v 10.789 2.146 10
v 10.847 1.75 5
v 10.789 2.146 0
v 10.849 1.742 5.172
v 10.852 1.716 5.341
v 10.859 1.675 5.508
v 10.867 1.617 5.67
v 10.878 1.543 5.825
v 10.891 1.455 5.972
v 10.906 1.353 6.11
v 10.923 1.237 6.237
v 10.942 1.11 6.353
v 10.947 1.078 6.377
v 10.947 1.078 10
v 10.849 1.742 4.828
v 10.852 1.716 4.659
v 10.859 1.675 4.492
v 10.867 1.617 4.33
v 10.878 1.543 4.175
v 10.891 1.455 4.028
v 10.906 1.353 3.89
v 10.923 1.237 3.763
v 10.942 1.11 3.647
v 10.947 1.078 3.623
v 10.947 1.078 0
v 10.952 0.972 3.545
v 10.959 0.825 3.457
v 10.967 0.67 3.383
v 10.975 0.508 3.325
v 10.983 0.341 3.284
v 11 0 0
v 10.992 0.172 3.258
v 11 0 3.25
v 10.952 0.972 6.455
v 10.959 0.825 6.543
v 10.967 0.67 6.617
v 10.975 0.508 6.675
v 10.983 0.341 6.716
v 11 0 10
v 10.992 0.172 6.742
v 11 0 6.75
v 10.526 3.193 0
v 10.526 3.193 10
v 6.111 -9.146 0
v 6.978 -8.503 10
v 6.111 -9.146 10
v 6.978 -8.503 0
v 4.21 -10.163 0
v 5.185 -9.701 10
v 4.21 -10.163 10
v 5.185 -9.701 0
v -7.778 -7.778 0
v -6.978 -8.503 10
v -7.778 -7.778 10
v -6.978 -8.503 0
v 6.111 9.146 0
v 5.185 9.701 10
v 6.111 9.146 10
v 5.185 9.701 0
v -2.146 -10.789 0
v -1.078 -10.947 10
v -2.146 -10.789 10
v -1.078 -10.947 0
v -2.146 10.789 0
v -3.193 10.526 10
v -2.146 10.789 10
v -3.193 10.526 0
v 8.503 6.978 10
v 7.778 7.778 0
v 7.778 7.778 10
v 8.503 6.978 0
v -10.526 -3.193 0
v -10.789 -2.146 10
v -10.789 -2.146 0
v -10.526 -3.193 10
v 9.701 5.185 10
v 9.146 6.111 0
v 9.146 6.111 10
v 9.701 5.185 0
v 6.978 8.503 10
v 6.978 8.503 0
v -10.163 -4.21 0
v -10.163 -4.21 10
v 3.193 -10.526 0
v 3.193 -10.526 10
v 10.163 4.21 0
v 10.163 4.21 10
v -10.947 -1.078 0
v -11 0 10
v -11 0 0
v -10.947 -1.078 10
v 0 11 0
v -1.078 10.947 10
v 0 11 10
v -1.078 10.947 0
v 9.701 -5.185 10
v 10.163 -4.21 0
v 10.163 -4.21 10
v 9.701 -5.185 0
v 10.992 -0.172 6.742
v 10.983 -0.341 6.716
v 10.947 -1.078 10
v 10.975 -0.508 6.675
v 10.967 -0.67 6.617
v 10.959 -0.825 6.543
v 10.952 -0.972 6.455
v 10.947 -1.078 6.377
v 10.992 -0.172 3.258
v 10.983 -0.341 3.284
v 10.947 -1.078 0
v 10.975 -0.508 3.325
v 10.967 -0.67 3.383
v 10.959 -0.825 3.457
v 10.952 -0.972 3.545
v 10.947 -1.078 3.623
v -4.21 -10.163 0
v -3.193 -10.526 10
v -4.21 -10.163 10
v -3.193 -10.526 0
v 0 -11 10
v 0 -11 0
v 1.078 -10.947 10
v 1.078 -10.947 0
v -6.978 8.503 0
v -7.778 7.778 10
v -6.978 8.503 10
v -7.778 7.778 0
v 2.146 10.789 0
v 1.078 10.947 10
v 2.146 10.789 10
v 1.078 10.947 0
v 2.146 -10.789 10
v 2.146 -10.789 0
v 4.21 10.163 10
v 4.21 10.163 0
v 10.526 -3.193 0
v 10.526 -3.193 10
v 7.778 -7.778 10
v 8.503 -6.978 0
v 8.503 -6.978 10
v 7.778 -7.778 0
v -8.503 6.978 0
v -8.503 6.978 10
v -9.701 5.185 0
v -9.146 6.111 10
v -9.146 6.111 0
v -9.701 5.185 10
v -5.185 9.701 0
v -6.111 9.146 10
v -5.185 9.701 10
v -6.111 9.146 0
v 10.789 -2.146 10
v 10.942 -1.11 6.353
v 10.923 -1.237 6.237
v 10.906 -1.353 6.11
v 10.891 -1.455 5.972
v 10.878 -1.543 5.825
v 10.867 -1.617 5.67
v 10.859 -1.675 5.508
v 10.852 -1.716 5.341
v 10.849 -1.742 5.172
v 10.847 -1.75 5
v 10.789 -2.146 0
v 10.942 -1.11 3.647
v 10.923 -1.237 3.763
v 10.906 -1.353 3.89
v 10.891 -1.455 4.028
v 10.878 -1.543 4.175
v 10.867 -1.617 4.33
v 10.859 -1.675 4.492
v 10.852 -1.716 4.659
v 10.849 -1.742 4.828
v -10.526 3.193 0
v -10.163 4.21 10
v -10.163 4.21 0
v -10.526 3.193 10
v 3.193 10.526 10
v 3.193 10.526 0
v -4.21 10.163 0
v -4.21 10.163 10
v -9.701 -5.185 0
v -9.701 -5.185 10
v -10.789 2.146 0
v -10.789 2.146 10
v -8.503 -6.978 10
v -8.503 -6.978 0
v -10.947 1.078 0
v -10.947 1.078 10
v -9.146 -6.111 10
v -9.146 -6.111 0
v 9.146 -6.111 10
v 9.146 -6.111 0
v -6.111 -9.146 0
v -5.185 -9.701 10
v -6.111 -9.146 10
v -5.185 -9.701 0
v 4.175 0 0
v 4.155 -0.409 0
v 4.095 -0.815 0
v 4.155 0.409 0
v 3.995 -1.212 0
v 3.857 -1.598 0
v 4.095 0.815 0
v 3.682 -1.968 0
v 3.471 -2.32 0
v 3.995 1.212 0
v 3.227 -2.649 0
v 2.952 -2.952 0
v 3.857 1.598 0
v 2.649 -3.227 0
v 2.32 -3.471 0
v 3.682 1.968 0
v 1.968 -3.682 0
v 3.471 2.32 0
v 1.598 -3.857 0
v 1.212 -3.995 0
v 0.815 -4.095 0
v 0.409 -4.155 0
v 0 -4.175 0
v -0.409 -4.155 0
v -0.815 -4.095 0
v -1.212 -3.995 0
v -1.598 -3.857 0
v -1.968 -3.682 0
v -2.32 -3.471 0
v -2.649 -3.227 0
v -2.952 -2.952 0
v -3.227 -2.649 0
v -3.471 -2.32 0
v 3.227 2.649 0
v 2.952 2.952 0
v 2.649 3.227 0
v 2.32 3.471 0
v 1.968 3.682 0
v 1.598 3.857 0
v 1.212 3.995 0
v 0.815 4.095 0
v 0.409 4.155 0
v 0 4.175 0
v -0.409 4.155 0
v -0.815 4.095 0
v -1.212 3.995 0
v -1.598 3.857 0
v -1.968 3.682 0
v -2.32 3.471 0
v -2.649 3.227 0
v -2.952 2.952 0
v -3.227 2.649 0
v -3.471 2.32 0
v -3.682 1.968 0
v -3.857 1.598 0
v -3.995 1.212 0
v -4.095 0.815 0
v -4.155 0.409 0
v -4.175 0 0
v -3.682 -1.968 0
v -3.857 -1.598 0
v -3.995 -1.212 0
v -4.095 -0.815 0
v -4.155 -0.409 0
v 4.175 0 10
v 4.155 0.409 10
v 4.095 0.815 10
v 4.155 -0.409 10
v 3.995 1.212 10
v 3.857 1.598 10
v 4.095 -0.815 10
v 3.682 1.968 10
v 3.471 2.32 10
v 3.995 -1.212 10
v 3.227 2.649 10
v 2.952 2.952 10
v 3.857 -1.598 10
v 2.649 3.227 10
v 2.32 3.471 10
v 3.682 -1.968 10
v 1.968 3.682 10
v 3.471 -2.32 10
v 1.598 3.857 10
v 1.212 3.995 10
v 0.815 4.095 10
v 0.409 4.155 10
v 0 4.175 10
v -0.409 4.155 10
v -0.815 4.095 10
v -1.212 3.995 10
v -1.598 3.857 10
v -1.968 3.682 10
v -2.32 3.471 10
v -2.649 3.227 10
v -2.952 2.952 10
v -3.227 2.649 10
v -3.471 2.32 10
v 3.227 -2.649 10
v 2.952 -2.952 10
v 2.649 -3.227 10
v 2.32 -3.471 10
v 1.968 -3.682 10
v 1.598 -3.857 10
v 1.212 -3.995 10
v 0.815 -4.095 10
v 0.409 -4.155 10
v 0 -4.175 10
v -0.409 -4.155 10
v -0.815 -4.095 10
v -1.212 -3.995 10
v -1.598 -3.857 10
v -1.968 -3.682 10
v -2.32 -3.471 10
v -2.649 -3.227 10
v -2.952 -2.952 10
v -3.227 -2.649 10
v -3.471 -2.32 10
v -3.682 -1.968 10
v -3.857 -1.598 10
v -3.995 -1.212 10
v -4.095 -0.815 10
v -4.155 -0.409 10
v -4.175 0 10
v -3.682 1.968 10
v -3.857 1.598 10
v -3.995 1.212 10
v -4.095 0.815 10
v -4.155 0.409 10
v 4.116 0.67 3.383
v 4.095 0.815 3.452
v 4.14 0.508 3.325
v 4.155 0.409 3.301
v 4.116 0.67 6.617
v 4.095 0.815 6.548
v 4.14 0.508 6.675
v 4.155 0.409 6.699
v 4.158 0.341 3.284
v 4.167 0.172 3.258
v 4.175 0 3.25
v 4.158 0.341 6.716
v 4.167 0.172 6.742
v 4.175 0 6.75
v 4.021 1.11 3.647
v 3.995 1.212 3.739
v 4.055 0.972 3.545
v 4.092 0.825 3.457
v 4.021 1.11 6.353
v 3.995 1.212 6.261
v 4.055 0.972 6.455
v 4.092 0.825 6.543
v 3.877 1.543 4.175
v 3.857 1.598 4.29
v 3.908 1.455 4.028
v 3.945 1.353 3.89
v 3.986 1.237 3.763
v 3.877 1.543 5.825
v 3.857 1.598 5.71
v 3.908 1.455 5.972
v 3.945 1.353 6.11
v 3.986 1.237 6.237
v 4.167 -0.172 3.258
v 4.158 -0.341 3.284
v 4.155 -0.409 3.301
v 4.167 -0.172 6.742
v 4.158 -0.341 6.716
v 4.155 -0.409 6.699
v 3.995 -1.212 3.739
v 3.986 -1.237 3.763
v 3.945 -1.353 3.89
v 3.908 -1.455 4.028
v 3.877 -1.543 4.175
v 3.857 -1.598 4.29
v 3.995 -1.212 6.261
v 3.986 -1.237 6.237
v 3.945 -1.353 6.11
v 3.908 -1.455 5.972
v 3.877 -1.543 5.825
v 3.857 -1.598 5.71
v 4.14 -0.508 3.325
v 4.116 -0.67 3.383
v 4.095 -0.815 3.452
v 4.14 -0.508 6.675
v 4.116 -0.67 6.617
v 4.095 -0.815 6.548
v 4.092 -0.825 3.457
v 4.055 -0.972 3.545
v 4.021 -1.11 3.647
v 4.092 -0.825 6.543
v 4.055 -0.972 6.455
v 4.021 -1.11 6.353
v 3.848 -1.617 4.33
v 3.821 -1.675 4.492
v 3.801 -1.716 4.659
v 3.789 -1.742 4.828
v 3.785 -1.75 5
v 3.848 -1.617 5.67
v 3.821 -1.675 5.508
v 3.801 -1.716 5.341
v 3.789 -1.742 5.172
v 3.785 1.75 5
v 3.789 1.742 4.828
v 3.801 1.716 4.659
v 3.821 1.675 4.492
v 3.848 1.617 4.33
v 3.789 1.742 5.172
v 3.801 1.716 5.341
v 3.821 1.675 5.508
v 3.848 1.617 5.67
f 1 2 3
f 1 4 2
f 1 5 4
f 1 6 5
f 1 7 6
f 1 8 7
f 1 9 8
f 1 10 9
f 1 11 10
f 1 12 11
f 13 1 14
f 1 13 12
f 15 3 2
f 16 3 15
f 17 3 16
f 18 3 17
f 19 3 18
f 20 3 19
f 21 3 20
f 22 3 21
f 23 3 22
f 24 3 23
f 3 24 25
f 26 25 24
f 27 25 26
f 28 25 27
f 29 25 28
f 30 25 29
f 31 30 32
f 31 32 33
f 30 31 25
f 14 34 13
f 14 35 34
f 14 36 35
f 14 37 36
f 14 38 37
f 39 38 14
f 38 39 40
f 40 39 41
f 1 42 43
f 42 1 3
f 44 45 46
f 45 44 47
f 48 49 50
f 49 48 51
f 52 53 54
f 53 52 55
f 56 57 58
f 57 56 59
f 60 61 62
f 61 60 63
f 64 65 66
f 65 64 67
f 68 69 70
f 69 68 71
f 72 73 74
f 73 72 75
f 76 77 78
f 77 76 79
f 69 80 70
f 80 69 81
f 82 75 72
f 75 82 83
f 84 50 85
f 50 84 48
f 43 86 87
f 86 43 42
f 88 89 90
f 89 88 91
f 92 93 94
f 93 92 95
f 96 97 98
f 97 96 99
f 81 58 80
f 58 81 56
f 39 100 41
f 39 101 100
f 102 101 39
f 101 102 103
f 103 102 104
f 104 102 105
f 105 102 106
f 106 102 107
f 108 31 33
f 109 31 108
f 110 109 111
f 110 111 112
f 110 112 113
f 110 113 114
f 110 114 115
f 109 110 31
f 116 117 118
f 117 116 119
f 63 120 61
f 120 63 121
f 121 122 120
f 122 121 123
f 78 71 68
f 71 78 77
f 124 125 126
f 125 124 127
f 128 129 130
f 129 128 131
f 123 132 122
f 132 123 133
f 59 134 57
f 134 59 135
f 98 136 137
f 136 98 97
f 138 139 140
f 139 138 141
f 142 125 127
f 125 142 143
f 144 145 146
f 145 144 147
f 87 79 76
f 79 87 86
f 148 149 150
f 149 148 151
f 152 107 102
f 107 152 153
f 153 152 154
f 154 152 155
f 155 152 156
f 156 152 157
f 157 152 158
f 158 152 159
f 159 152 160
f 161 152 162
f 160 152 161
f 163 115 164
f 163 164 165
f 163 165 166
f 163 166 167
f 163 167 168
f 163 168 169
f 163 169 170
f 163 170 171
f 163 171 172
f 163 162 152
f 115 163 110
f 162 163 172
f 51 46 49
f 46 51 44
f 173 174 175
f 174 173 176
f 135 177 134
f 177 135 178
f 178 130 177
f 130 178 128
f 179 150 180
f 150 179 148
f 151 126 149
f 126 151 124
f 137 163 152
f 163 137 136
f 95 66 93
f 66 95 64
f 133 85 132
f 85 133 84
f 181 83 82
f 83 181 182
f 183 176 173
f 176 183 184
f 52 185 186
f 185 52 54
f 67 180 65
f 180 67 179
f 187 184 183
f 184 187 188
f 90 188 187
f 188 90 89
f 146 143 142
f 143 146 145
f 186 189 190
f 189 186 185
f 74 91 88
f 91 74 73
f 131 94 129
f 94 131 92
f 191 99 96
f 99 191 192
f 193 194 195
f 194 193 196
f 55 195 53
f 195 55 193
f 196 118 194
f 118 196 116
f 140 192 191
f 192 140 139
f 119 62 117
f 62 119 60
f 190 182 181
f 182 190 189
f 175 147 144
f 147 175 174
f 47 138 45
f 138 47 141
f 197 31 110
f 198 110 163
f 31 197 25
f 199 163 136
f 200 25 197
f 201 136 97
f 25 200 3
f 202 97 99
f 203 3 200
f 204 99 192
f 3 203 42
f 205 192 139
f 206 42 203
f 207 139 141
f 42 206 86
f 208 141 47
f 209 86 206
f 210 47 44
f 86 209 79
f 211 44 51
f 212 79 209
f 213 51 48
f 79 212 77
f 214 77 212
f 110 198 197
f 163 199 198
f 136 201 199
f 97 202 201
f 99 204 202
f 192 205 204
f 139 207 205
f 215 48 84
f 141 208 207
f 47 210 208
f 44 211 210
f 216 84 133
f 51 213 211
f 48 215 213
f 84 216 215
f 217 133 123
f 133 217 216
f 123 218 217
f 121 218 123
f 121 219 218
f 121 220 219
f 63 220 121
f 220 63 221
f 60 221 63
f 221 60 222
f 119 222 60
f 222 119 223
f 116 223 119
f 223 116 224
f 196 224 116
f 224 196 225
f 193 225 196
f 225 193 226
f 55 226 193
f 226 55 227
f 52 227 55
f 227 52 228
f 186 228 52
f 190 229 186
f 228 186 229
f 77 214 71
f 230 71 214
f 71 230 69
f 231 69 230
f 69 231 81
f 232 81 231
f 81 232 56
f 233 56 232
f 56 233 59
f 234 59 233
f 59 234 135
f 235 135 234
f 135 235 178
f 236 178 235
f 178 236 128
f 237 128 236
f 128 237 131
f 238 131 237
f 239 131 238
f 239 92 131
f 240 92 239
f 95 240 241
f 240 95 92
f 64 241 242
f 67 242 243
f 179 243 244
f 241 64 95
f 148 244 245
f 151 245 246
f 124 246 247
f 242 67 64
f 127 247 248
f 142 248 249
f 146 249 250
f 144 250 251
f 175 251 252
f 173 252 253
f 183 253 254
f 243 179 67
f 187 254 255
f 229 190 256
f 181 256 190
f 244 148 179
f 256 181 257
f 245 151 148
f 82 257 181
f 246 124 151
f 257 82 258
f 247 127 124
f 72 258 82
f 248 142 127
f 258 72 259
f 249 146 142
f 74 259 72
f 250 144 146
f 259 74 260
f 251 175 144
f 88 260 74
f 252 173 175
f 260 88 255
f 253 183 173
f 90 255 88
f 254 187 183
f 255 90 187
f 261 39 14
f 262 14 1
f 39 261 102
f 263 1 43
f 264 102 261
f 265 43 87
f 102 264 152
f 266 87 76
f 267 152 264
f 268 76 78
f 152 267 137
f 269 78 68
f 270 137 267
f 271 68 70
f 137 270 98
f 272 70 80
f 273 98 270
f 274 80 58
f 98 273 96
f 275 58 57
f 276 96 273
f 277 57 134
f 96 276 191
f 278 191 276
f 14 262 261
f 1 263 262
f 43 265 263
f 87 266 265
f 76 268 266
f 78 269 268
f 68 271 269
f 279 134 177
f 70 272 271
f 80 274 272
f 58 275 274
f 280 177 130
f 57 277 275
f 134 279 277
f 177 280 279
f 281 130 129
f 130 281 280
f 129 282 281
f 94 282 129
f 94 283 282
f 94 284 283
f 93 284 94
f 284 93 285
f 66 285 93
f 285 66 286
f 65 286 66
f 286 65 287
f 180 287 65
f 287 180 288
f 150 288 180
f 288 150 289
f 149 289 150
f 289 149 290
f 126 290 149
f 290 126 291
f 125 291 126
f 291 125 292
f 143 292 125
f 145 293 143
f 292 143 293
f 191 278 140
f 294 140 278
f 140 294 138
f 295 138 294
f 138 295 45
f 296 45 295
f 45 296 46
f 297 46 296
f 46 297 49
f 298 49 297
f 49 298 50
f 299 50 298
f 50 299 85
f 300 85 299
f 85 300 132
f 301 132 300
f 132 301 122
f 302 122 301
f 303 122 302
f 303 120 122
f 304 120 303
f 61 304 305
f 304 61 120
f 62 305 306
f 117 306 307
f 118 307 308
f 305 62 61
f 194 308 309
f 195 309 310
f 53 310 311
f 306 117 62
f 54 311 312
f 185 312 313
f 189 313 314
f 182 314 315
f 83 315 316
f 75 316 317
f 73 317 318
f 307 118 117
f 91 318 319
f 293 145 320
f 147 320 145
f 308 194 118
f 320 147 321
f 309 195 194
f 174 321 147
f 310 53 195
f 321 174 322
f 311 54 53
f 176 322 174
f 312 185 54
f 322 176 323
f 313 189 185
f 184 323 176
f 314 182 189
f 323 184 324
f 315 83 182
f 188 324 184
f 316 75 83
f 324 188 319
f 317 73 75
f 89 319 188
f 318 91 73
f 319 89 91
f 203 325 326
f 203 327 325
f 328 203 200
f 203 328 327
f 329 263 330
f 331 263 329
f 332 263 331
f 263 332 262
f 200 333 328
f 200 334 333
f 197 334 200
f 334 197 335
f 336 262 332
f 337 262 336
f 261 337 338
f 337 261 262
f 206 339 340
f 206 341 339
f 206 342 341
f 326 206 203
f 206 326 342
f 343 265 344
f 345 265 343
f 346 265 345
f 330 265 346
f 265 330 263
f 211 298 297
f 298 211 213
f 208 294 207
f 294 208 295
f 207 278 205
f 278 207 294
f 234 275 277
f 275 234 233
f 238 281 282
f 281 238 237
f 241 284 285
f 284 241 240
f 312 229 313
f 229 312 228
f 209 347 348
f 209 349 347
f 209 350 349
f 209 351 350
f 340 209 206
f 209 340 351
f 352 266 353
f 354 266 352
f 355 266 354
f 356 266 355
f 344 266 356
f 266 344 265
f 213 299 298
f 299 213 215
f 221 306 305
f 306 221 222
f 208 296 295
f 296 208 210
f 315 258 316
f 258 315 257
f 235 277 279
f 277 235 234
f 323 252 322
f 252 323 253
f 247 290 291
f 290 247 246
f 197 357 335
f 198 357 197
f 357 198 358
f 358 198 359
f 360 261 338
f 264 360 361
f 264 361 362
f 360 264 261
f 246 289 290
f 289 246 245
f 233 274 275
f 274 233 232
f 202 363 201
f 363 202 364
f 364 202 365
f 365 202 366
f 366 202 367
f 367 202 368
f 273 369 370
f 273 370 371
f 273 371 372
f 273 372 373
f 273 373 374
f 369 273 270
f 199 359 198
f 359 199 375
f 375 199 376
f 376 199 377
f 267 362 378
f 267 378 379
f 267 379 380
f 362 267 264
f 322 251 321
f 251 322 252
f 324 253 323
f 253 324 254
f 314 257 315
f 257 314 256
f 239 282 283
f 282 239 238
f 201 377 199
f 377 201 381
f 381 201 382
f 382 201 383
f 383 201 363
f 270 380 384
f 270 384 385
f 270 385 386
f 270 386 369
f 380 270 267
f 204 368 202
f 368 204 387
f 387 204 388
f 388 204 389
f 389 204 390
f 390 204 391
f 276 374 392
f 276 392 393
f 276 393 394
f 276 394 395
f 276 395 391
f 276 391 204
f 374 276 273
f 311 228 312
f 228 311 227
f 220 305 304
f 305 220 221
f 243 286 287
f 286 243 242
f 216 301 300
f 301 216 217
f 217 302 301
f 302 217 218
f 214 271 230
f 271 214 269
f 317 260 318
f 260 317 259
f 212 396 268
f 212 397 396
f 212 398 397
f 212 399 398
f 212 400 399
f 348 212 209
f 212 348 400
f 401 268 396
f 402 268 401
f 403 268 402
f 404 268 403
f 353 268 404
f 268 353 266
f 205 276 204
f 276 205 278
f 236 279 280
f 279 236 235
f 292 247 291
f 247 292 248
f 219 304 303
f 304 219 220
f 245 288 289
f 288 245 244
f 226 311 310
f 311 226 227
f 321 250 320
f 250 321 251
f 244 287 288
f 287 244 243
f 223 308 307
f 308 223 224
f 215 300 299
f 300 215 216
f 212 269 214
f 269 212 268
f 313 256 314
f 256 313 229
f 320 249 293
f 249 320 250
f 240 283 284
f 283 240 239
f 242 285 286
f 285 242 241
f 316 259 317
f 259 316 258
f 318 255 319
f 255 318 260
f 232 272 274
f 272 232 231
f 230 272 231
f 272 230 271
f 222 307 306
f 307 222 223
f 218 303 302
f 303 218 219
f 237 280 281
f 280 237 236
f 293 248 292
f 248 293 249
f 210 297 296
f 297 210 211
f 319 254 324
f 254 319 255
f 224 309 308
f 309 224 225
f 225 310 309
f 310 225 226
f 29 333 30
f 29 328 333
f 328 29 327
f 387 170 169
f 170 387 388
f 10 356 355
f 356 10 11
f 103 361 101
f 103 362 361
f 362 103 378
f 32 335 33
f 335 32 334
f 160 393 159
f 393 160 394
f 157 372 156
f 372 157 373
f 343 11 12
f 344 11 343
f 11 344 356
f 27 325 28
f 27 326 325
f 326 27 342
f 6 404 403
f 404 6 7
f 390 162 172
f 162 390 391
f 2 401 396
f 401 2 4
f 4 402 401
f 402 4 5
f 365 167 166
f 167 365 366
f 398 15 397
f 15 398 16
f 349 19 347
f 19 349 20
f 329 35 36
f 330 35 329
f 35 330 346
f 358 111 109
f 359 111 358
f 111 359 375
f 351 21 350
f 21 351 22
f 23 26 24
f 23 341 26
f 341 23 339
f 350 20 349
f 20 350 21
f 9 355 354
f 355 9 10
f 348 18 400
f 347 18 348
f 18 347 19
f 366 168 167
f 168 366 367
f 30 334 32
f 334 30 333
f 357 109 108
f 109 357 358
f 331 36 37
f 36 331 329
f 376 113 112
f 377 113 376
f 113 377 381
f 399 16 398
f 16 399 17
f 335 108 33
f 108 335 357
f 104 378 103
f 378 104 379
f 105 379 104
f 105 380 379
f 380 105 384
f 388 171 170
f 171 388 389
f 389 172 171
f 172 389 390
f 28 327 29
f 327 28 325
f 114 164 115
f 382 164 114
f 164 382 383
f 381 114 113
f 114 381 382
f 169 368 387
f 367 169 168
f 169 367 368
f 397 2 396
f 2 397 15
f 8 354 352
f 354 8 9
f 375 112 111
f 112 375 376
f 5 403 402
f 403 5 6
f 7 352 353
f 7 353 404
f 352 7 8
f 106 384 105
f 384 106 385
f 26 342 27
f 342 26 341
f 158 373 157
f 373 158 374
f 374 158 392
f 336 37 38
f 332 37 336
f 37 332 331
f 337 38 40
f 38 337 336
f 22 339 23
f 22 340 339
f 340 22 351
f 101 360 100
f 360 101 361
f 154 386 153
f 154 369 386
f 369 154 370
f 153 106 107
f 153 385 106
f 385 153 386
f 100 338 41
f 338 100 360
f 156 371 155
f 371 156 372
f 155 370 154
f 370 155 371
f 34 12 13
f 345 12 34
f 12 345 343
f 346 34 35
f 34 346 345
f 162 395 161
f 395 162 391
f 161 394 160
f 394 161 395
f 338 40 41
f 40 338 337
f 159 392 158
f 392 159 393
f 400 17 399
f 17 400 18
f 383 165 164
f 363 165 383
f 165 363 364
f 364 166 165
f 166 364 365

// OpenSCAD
// file: parameters.scad
// =============================================================================
// Gen-W Triple-rotor dual-stator sandwich — WOUND-AWARE (HARD GATE)
// RotorA | StatorA | RotorMid | StatorB | RotorB
// Magnets: outer 5+5 Ø20, mid 6 Ø20 (3/face); Ø5 Halbach 16+16+16
// =============================================================================

wire_awg            = 26;
wire_od             = 0.45;
turns               = 110;      // 18 pancakes × 110 t ≈ 198 m @ mean 0.10 m
fill                = 0.70;
layers_per_face     = 2;
wind_build_axial    = layers_per_face * wire_od * fill;   // 0.63
wind_build_radial   = 2.8 * wire_od * fill;               // 0.882

coil_id_r           = 23.0;
coil_od_r           = 56.0;
span_deg            = 34.0;     // 9 stations × 40°
former_web          = 2.0;
flange_t            = 0.75;
wall                = 1.2;
slot_w              = 2.4;
mount_hole          = 3.5;
tab_len             = 7.0;

former_bare_h       = former_web + 2 * flange_t;            // 3.5
coil_envelope_h     = former_bare_h + 2 * wind_build_axial; // 4.76

// Each gap: magnet ↔ wound ≥ 0.75
run_clear           = 0.75;
gap_spacer_h        = run_clear + wind_build_axial;         // 1.38
// Outer gap m2m (outer rotor ↔ mid rotor face through one stator):
m2m_outer           = coil_envelope_h + 2 * run_clear;      // 6.26
m2m_inner           = m2m_outer;                            // symmetric gaps

coil_stations       = 9;        // per stator; ×2 = 18
bay_r_in            = coil_id_r - 2.0 - wind_build_radial;
bay_r_out           = coil_od_r + 2.0 + wind_build_radial;
bay_span            = span_deg + 4.0;
bay_offset          = 2.0;
bay_depth           = former_bare_h + wind_build_axial;     // seat bare+back wind
stator_back_web     = 2.0;
stator_thick        = bay_depth + stator_back_web;          // ~6.13
stator_od           = 156.0;
shaft_clear_stator  = 40.0;
coil_mount_r        = 30.0;

// Outer rotors: 5×Ø20 + 16×Ø5 each; Mid: 3+3 Ø20 + 16 Ø5 (both faces)
large_pocket_d      = 20.3;
small_pocket_d      = 5.3;
pocket_h            = 5.2;
outer_large_n       = 5;
mid_large_n_face    = 3;        // 3 per face = 6 mid
R_large             = 52.0;
R_small_inner       = 40.0;
R_small_mid         = 52.0;
R_small_outer       = 64.0;
carrier_od          = 152.0;
outer_carrier_thick = 7.5;
mid_carrier_thick   = 12.0;     // dual face 5.2+1.6+5.2
hub_h               = 10.0;
hub_od              = 30.0;

shaft_bore          = 8.35;
bearing_d           = 21.85;
bearing_h           = 7.2;
m3_clear            = 3.5;
bolt_r_inner        = 36.0;
bolt_n_inner        = 6;
flange_bolt_r       = 72.0;
flange_bolt_n       = 6;
brace_r             = 68.0;
brace_d             = 4.3;
brace_n             = 4;

spacer_pad_od       = 14.0;
spacer_pad_id       = m3_clear;
endbell_od          = 156.0;
endbell_thick       = 8.0;
endbell_shaft_clear = 10.0;

$fn = 64;
// main file
// Gen-W shaft collar — print ×2–4
include <parameters.scad>;
$fn = 64;
od = 22; id = shaft_bore; h = 10; set_d = 3.5;
difference() {
    cylinder(d=od, h=h);
    translate([0, 0, -0.1]) cylinder(d=id, h=h + 0.2);
    translate([0, 0, h/2]) rotate([0, 90, 0]) cylinder(d=set_d, h=od);
}
